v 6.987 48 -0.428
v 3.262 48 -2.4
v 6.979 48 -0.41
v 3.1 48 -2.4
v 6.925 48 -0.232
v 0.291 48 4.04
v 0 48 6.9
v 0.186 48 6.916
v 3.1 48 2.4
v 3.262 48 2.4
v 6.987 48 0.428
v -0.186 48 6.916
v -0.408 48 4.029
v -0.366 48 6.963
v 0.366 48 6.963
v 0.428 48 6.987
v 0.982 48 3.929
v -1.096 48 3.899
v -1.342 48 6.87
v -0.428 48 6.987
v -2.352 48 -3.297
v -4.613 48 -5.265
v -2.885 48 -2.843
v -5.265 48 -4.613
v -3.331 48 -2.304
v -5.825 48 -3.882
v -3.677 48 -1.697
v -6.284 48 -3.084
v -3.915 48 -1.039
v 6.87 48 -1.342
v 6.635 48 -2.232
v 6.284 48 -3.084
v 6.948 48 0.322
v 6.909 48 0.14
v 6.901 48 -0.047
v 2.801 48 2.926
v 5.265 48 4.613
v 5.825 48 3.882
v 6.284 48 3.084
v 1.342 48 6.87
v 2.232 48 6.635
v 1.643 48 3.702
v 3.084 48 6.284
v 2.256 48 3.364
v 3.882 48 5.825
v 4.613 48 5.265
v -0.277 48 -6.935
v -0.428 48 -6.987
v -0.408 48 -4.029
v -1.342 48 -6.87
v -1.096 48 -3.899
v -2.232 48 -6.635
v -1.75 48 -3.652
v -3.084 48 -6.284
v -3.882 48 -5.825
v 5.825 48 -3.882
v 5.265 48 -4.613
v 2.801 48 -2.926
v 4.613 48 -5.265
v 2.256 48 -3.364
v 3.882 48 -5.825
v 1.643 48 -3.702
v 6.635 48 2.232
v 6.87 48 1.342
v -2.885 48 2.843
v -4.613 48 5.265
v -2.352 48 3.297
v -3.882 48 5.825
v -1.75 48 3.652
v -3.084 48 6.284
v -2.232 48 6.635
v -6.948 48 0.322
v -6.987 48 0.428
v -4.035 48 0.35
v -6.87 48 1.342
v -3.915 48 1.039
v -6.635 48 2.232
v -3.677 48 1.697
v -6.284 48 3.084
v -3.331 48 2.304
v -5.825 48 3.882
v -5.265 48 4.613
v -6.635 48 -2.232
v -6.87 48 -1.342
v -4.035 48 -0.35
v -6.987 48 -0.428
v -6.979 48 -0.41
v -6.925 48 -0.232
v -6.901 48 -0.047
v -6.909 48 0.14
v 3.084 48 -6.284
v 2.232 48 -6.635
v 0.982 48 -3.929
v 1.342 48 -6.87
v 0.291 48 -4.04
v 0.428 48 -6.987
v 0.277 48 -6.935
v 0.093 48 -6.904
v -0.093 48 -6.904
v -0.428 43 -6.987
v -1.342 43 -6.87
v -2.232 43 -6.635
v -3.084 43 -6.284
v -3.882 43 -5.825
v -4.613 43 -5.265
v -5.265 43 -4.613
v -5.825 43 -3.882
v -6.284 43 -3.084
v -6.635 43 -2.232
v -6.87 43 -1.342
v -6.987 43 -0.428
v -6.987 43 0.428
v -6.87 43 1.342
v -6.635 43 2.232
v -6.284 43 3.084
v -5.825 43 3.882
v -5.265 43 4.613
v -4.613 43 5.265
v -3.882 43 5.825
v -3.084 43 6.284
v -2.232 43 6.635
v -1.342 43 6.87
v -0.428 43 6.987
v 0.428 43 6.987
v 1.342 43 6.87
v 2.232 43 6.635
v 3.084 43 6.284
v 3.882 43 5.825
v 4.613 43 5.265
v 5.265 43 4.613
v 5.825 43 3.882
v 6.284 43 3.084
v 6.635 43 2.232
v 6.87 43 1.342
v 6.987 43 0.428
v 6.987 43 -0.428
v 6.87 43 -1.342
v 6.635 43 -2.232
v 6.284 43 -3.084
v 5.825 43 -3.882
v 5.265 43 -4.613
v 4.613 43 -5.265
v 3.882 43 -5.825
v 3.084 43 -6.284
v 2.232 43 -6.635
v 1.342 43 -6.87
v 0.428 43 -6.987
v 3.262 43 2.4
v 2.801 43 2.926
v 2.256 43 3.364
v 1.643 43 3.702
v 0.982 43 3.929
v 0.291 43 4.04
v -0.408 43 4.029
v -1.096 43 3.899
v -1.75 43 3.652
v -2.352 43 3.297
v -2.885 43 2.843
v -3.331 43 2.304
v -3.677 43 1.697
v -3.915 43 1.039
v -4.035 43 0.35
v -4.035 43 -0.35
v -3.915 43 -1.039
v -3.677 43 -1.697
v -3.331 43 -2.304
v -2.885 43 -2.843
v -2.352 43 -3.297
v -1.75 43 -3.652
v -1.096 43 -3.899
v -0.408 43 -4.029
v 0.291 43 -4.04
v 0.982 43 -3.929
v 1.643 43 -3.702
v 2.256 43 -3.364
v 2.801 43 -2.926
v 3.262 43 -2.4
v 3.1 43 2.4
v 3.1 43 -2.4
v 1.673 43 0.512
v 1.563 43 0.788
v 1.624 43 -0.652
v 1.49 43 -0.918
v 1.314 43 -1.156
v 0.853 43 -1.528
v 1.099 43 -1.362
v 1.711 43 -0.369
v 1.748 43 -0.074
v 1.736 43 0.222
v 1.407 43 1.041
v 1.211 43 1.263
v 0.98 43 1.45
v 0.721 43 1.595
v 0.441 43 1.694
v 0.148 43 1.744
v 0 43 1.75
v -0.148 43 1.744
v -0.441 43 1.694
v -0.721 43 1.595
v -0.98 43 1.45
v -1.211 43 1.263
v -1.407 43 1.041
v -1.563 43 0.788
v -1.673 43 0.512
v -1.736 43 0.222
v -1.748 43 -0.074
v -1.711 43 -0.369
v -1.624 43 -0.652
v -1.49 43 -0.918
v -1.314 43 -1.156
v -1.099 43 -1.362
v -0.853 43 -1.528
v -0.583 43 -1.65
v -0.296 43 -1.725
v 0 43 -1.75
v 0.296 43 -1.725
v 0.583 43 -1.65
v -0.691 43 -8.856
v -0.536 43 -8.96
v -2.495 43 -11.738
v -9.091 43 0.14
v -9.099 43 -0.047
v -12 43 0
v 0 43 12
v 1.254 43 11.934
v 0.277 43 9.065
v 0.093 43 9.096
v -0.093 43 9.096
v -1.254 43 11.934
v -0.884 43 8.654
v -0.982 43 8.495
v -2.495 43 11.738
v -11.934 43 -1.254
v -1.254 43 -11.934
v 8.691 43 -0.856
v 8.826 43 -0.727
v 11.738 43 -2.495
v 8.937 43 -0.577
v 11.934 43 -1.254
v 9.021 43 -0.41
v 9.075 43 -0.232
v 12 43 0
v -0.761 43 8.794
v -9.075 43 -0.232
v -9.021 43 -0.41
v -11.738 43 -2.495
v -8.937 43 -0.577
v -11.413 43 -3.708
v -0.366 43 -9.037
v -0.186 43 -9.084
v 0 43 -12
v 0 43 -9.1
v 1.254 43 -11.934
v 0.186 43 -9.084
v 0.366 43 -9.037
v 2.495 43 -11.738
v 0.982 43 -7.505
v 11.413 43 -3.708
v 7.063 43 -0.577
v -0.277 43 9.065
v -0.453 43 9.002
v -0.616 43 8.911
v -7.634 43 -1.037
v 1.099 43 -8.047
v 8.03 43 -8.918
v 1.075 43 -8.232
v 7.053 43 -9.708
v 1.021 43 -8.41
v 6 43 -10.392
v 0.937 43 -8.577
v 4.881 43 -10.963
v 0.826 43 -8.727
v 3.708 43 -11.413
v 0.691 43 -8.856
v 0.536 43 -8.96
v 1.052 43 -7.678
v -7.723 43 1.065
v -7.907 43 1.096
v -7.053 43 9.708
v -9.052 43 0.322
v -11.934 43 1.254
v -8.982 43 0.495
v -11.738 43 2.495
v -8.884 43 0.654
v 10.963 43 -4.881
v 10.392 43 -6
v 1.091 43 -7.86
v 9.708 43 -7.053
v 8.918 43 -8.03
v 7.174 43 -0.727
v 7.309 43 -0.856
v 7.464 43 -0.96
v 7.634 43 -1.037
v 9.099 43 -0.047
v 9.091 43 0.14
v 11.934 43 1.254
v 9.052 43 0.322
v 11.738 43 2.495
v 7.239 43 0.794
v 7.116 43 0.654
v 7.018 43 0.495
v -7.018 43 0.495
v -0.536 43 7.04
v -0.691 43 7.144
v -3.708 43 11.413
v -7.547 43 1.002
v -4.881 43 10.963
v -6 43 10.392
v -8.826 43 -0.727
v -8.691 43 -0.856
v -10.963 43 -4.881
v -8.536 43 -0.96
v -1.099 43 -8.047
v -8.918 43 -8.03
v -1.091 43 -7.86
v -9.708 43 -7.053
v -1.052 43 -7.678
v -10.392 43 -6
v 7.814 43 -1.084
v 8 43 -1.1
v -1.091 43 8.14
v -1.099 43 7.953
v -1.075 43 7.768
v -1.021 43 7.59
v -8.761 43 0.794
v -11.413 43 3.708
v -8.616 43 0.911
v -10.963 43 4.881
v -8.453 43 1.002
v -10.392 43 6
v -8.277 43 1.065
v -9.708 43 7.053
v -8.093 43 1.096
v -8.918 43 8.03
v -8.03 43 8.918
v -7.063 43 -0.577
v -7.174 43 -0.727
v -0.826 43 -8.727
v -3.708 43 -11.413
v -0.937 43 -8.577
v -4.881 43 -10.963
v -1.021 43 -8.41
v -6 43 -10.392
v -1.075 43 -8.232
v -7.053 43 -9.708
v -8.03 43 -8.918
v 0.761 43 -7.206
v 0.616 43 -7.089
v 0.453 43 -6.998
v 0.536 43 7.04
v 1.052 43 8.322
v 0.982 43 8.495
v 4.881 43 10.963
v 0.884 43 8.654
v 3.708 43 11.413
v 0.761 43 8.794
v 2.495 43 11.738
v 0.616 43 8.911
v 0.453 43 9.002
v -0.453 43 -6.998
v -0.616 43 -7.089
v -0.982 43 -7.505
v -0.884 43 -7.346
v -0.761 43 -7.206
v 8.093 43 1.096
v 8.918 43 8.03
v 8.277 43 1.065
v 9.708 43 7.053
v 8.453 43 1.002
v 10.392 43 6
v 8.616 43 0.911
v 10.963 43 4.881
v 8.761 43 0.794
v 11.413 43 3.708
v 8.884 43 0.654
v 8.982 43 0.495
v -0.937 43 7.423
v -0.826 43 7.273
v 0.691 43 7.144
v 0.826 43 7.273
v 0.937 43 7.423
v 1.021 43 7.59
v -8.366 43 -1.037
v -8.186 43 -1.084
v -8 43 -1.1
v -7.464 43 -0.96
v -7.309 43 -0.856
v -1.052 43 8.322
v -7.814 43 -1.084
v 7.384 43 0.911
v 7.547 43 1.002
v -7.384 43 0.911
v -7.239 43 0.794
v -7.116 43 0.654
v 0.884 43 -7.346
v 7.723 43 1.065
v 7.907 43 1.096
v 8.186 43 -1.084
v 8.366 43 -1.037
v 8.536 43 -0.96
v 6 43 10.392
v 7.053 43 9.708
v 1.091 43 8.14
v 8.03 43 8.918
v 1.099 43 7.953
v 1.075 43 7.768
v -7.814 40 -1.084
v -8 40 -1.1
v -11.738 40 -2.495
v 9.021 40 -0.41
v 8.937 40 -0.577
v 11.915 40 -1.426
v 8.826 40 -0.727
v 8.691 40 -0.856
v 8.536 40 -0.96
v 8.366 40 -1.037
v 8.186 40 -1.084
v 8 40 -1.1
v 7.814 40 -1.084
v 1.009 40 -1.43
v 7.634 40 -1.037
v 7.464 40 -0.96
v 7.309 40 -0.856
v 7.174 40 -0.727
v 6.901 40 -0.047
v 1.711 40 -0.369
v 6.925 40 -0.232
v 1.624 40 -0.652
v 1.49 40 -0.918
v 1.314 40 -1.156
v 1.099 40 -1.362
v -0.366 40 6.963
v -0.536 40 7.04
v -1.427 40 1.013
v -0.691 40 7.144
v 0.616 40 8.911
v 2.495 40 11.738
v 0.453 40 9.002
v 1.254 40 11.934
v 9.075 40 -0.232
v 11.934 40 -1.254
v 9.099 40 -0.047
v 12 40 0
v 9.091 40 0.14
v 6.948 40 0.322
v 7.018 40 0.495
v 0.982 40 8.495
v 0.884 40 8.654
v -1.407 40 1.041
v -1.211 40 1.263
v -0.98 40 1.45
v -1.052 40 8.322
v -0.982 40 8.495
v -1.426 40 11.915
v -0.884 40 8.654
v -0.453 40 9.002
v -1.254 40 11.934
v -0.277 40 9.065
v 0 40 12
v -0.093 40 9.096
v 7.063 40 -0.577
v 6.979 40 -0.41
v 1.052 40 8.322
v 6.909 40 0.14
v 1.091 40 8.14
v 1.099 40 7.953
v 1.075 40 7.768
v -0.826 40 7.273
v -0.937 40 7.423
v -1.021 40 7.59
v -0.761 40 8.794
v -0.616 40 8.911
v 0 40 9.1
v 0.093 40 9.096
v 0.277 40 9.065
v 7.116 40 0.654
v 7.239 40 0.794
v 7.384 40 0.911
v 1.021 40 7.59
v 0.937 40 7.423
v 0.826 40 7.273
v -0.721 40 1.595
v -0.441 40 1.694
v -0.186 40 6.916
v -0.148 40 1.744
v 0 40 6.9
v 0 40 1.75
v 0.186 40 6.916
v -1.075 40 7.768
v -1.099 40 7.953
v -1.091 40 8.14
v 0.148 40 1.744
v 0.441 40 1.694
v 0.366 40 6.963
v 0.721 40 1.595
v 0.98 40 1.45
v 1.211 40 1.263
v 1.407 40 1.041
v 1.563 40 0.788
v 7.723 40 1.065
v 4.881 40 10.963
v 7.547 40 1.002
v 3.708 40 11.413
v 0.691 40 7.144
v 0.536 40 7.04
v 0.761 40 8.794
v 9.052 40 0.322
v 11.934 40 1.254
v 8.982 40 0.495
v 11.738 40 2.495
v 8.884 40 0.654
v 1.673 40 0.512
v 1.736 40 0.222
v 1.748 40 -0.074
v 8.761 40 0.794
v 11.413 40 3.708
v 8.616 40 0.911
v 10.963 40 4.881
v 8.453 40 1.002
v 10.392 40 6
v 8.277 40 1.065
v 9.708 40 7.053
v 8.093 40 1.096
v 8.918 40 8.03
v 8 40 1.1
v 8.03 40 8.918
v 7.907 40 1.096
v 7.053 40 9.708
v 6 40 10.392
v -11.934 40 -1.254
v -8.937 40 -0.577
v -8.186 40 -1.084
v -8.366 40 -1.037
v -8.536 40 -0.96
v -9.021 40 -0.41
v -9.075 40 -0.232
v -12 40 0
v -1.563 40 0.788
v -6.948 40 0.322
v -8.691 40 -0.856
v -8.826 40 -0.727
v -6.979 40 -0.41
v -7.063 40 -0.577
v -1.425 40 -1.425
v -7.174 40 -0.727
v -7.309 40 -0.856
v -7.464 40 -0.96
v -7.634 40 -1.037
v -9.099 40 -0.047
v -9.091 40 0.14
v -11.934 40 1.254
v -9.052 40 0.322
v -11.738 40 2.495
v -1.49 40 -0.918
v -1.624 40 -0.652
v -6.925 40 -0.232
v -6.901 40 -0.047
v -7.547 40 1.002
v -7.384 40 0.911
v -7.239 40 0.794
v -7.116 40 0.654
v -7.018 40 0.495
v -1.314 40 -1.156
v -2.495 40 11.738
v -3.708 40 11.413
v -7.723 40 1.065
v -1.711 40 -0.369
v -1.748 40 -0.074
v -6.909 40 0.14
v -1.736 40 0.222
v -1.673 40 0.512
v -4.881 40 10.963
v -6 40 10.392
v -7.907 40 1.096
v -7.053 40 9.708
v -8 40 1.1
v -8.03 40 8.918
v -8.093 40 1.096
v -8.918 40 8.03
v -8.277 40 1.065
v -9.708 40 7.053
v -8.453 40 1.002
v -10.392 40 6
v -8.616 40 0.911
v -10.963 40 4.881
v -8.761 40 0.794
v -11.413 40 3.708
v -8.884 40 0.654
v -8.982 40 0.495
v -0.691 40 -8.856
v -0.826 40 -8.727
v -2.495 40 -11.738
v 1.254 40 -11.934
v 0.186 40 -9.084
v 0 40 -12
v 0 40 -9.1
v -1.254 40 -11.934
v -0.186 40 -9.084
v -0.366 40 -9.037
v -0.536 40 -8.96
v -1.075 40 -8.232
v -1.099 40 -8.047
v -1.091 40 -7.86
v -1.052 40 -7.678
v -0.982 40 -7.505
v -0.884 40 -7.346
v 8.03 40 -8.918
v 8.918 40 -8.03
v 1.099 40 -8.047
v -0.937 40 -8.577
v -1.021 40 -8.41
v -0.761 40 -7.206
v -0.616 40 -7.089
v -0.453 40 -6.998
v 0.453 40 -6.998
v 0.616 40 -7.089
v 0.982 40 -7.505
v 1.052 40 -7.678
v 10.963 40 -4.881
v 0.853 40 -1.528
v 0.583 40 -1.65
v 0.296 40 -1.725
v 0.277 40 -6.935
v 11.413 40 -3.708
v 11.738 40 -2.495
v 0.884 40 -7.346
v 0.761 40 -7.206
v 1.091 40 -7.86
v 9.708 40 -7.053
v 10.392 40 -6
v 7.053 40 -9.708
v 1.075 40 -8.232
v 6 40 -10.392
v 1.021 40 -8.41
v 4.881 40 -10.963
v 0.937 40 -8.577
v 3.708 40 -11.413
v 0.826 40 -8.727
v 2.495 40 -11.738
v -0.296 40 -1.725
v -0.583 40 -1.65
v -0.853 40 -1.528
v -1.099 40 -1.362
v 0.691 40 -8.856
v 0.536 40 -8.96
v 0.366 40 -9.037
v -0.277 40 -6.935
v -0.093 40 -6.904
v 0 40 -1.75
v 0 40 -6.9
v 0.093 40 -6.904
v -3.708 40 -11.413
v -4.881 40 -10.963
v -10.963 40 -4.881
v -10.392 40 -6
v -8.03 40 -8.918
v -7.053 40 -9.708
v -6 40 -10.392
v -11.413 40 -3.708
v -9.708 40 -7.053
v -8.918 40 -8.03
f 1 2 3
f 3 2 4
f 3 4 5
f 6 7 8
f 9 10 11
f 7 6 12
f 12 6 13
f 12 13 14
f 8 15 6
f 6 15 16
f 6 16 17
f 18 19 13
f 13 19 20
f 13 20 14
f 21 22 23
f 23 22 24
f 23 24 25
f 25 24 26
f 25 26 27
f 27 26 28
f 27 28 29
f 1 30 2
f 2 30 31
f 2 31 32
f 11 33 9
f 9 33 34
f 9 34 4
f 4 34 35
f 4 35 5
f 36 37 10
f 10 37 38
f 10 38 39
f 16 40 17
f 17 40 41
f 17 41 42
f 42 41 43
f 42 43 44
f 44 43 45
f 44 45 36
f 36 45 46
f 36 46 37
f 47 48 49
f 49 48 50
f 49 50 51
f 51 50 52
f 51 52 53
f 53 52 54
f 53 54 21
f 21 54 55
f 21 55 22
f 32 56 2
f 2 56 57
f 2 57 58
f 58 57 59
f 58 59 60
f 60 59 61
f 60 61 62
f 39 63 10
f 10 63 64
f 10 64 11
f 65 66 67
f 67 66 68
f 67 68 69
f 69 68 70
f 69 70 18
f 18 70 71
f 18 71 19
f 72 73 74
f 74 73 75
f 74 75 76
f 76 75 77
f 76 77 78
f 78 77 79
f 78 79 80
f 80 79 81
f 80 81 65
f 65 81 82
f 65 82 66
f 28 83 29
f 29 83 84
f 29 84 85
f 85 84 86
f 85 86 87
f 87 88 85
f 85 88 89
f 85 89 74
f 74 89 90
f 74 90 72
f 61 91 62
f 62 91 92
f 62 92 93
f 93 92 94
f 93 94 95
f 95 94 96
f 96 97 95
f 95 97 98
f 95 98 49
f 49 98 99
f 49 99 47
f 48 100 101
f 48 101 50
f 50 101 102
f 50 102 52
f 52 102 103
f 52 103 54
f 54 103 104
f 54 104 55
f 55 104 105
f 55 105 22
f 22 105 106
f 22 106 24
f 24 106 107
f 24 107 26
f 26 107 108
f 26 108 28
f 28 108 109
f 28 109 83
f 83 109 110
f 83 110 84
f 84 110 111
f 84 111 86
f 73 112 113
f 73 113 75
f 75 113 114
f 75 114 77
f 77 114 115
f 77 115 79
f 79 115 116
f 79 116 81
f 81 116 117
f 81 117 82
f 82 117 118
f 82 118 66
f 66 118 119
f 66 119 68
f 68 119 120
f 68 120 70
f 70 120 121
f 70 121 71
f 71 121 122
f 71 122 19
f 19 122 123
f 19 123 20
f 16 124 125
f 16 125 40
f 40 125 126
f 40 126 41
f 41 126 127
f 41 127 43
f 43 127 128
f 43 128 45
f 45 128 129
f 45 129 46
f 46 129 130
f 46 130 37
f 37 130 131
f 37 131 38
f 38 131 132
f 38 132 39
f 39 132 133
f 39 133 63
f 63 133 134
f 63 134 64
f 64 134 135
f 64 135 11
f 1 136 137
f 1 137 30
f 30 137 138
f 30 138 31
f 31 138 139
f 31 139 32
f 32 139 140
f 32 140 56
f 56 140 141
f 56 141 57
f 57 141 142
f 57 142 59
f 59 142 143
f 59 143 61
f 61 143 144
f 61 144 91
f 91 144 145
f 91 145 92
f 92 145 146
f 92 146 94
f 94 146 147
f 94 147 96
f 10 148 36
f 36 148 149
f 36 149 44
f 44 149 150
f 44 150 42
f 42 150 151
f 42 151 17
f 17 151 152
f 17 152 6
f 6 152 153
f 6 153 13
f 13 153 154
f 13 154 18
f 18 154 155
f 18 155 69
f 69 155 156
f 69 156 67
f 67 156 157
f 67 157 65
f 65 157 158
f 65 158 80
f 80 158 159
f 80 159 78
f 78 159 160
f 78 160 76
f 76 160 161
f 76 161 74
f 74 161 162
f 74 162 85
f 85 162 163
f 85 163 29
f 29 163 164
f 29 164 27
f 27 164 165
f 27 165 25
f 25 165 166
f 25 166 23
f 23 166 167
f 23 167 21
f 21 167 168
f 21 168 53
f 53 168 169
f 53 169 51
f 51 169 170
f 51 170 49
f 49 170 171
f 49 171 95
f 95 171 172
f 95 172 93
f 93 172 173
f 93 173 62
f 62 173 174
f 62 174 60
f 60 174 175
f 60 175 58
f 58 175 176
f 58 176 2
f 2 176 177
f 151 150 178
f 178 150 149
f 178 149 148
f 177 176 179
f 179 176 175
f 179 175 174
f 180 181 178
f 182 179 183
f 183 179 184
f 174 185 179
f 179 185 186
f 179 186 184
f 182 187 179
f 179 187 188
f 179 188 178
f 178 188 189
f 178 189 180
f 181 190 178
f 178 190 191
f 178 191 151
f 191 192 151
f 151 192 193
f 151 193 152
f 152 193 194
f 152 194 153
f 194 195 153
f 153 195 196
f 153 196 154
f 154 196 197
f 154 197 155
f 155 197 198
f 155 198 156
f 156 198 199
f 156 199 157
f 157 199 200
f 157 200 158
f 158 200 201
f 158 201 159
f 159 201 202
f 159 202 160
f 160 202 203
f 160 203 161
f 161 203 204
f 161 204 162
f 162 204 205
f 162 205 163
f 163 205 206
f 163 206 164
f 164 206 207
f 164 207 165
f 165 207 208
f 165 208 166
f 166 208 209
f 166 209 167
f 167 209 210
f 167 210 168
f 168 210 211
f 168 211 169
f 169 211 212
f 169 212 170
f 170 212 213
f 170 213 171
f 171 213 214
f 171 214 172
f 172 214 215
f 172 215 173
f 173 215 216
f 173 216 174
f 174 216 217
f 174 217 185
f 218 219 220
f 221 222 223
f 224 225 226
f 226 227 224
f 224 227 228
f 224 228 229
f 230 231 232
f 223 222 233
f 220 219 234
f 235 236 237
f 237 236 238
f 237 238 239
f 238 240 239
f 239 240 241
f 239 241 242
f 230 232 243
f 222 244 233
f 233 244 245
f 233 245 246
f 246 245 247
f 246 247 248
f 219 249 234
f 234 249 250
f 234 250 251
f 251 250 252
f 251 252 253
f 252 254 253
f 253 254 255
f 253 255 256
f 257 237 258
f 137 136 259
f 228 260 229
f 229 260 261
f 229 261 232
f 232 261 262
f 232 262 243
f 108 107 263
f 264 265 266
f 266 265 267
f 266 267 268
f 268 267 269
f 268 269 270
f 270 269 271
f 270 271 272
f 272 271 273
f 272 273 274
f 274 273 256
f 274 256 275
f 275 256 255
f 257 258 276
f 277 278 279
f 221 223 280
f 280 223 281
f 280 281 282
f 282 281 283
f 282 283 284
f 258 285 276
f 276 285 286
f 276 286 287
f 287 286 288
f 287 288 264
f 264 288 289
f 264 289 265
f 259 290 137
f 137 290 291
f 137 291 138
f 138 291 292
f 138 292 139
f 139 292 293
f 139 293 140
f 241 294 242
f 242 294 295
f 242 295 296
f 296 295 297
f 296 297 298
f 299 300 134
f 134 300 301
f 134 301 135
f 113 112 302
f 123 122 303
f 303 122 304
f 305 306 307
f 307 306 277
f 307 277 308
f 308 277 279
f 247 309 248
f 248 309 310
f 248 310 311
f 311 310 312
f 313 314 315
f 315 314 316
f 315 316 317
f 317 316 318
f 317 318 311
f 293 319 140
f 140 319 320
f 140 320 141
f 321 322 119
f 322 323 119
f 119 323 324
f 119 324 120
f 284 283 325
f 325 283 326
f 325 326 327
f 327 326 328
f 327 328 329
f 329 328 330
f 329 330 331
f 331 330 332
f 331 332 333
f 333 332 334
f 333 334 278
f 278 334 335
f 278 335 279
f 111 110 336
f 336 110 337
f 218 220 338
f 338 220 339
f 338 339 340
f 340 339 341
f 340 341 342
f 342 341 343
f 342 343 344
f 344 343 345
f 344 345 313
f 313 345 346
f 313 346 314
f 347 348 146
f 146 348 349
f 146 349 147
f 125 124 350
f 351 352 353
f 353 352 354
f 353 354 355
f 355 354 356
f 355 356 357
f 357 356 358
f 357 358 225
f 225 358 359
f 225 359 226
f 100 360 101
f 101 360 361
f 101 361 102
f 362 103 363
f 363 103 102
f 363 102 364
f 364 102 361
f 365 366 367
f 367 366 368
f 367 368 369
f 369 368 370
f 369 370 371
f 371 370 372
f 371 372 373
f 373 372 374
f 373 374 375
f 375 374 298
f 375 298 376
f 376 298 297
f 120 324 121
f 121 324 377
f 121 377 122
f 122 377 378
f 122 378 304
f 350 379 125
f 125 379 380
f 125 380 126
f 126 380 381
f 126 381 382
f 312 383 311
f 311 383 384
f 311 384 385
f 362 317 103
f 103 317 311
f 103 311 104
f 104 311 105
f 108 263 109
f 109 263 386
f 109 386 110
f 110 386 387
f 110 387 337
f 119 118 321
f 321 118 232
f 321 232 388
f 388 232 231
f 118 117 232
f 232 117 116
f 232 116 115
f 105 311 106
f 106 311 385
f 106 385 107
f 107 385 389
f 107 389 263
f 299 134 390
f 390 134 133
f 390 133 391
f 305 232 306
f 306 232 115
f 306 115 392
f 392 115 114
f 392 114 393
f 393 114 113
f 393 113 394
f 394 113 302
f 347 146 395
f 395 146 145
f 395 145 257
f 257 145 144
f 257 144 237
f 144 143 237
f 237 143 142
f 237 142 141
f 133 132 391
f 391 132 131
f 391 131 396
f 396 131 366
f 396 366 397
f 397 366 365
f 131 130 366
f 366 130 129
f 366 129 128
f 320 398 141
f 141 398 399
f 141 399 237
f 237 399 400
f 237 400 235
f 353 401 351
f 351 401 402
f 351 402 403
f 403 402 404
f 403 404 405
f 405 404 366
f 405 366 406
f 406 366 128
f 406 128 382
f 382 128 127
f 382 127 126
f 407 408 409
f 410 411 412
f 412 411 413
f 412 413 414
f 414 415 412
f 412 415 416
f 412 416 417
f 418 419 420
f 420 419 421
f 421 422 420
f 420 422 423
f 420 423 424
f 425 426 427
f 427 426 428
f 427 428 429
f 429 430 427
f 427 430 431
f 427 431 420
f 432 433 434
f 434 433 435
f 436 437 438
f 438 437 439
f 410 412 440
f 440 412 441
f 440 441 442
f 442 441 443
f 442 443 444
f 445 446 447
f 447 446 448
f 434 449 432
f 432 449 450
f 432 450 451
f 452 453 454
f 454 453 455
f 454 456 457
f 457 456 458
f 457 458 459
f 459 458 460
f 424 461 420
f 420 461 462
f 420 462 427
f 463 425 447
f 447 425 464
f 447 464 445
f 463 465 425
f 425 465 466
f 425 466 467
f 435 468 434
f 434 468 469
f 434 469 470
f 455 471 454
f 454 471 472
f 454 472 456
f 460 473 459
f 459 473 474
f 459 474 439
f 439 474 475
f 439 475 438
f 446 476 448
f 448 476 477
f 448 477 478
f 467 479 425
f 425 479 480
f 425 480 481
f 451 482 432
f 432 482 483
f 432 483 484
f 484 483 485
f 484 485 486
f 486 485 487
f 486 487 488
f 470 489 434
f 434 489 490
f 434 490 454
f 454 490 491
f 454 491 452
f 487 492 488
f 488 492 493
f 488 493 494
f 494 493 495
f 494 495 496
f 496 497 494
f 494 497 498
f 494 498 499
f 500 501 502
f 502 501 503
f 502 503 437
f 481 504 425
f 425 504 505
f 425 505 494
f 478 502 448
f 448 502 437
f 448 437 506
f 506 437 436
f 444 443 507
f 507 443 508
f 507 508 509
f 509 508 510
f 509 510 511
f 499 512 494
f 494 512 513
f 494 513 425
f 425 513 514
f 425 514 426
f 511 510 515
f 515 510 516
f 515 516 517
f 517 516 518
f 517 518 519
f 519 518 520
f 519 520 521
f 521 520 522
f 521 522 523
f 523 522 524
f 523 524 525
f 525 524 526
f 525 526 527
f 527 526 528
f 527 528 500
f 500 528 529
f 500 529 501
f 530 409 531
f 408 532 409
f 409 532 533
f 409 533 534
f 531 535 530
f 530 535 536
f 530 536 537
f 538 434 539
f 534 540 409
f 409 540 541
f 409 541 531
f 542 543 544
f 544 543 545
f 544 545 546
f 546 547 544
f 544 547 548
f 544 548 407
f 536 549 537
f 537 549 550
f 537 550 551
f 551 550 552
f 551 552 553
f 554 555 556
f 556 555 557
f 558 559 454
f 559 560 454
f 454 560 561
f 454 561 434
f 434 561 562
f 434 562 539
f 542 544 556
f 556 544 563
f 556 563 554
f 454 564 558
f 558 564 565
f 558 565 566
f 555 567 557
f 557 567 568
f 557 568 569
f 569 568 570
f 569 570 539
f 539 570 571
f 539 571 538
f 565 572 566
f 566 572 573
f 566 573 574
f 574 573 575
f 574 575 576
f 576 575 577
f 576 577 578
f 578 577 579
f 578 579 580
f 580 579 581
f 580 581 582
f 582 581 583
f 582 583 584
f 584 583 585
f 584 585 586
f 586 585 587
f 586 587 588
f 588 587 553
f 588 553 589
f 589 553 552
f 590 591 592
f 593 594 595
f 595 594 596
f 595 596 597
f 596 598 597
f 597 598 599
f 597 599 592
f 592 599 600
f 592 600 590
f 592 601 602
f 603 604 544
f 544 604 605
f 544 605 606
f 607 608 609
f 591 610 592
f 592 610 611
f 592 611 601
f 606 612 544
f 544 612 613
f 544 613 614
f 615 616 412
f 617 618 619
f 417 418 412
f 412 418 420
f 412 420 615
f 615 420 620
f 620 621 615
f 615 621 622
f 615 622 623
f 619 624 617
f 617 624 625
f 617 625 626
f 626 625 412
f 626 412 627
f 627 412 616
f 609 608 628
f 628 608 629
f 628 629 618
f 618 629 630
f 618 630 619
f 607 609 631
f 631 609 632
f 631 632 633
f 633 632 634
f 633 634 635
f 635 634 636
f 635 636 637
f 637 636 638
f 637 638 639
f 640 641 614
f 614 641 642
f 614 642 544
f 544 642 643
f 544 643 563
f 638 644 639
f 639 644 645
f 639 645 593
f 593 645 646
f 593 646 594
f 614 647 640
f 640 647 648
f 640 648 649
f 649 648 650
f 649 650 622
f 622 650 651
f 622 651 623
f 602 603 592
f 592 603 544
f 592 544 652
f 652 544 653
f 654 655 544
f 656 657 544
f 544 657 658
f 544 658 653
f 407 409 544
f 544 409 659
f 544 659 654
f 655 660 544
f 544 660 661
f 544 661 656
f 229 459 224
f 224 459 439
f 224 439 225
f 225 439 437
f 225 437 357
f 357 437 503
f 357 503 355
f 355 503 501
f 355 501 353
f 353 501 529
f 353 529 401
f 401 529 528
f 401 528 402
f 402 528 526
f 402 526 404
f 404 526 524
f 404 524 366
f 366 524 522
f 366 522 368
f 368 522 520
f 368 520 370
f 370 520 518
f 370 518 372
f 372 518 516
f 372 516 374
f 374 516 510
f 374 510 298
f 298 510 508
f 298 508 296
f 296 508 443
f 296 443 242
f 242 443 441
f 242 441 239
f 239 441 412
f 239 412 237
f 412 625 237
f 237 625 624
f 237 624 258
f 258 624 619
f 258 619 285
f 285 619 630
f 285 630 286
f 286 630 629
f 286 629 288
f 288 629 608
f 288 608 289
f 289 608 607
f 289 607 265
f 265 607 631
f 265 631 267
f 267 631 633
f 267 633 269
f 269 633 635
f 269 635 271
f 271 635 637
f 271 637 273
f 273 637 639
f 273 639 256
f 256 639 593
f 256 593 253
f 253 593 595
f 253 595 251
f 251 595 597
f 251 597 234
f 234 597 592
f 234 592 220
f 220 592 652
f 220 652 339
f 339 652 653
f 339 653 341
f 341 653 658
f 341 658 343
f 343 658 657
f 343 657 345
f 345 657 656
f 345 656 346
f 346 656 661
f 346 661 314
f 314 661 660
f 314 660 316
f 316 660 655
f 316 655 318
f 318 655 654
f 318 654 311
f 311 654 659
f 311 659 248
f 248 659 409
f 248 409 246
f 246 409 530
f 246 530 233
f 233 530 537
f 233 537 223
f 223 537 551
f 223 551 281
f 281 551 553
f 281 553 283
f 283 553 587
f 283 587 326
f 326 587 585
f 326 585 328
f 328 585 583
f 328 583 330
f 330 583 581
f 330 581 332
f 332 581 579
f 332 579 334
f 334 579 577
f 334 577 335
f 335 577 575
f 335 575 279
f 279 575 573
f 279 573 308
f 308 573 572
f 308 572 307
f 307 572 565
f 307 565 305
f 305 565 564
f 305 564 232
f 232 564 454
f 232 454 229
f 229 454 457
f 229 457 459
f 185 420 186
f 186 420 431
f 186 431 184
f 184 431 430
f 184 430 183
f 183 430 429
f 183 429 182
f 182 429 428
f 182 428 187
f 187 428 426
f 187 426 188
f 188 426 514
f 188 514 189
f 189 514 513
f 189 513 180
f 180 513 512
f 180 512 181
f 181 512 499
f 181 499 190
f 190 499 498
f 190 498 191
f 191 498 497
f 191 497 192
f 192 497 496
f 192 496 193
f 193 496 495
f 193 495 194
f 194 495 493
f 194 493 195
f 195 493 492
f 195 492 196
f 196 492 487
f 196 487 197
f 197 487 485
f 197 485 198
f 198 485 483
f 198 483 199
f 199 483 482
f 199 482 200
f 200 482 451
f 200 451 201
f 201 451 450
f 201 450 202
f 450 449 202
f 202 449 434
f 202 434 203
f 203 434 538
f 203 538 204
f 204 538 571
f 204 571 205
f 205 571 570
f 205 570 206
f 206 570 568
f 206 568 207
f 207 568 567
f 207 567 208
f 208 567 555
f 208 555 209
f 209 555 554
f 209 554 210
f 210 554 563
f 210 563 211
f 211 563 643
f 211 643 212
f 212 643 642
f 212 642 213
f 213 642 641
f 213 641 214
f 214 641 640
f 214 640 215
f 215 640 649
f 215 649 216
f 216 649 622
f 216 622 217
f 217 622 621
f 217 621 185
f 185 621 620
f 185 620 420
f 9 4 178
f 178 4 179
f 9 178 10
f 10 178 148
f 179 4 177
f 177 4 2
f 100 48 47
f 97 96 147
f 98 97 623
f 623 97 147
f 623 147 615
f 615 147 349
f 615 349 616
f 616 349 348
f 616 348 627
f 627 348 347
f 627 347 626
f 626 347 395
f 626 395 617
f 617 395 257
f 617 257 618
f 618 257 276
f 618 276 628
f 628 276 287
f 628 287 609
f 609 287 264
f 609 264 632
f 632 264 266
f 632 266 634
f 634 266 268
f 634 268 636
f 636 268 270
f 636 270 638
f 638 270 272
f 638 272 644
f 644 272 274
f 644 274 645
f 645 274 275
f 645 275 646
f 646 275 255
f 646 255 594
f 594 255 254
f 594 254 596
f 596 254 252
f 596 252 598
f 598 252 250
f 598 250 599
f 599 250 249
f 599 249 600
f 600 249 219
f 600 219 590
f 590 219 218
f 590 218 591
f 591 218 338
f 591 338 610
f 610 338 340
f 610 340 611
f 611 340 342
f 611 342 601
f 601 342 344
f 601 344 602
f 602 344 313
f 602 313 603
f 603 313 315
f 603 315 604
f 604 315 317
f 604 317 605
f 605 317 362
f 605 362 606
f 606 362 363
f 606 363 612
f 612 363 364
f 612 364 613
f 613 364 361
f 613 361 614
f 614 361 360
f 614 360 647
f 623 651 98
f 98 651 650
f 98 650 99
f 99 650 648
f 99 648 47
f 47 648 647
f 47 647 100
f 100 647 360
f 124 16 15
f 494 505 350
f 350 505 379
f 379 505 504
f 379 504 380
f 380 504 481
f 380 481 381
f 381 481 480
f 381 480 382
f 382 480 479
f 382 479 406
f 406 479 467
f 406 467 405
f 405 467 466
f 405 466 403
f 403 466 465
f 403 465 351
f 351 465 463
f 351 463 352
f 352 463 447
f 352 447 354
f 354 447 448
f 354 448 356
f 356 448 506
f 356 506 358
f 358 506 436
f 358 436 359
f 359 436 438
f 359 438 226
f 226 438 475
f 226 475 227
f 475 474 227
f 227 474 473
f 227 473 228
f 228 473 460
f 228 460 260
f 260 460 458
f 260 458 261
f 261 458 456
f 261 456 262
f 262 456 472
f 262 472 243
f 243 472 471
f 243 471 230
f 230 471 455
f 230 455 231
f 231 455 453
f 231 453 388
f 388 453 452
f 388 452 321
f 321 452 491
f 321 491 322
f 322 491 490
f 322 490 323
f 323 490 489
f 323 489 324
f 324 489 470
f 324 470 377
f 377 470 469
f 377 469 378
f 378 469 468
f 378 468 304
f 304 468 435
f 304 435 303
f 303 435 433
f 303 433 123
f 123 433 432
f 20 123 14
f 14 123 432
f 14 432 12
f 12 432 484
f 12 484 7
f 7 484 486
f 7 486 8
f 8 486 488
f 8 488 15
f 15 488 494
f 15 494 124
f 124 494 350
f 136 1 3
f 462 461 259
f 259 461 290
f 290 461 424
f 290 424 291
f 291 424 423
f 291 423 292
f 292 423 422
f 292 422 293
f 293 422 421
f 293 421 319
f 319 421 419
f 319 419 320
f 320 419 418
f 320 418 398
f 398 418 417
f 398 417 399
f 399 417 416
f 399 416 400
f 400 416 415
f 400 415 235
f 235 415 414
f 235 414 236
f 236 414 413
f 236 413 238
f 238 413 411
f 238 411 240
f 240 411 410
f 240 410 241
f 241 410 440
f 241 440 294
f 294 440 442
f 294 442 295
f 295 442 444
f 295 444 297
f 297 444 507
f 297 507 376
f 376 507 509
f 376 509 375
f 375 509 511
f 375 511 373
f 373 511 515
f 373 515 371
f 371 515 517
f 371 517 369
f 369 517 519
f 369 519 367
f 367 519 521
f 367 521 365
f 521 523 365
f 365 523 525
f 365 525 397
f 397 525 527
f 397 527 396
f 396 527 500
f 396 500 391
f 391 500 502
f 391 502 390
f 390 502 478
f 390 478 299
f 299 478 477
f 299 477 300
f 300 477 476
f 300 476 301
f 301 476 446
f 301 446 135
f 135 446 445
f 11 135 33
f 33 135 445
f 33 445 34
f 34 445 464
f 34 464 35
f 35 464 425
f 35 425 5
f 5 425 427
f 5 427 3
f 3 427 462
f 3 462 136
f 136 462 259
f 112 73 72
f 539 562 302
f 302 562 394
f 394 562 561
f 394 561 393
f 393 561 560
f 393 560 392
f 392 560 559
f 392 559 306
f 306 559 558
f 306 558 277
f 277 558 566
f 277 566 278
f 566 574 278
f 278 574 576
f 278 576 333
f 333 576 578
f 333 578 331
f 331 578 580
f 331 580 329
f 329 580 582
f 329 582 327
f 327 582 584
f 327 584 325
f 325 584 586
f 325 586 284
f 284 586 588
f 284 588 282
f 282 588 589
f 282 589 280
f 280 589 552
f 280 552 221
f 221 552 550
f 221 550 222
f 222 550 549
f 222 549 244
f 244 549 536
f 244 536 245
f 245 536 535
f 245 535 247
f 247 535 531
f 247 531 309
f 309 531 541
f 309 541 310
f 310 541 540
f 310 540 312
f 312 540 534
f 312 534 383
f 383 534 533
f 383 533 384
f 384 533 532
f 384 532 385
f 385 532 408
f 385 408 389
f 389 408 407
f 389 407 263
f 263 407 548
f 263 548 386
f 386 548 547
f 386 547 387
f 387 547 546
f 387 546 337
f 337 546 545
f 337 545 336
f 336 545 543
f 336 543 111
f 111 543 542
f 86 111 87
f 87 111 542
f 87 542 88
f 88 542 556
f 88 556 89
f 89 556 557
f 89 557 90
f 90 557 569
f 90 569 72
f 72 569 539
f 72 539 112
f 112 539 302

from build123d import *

# Parameters (mm, degrees)
STOCK_HORN_DRIVE_FLANGE_START       = 40
STOCK_HORN_DRIVE_FLANGE_PROFILE_R   = 12
STOCK_HORN_DRIVE_FLANGE_PROFILE_R_2 = 1.75
STOCK_HORN_DRIVE_FLANGE_DEPTH       = 3
D_COUPLING_RING_START               = 43
D_COUPLING_RING_PROFILE_R           = 7
D_COUPLING_RING_PROFILE_R_2         = 4.05
D_COUPLING_RING_DEPTH               = 5
D_KEY_LAND_START                    = 43
D_KEY_LAND_PROFILE_W                = 2.9
D_KEY_LAND_PROFILE_H                = 4.8
D_KEY_LAND_DEPTH                    = 5
STOCK_HORN_SCREWS_START             = 39
STOCK_HORN_SCREWS_PROFILE_R         = 1.1
STOCK_HORN_SCREWS_DEPTH             = 12.911688245


with BuildPart() as part:
    # Stock_horn_drive_flange_profile → Stock_horn_drive_flange (new body)
    with BuildSketch(Plane(origin=(0, 0, 0), x_dir=(1, 0, 0), z_dir=(0, 1, 0)).offset(STOCK_HORN_DRIVE_FLANGE_START)):
        with Locations(Location((0, 0, 0), (0, 0, 270))):
            Circle(STOCK_HORN_DRIVE_FLANGE_PROFILE_R)
        with Locations(Location((0, 0, 0), (0, 0, 270))):
            Circle(STOCK_HORN_DRIVE_FLANGE_PROFILE_R_2, mode=Mode.SUBTRACT)
    extrude(amount=STOCK_HORN_DRIVE_FLANGE_DEPTH)

    # D_coupling_ring_profile → D_coupling_ring (add)
    with BuildSketch(Plane(origin=(0, 0, 0), x_dir=(1, 0, 0), z_dir=(0, 1, 0)).offset(D_COUPLING_RING_START)):
        with Locations(Location((0, 0, 0), (0, 0, 270))):
            Circle(D_COUPLING_RING_PROFILE_R)
        with Locations(Location((0, 0, 0), (0, 0, 270))):
            Circle(D_COUPLING_RING_PROFILE_R_2, mode=Mode.SUBTRACT)
    extrude(amount=D_COUPLING_RING_DEPTH)

    # D_key_land_profile → D_key_land (add)
    with BuildSketch(Plane(origin=(0, 0, 0), x_dir=(1, 0, 0), z_dir=(0, 1, 0)).offset(D_KEY_LAND_START)):
        with Locations((4.55, 0)):
            Rectangle(D_KEY_LAND_PROFILE_W, D_KEY_LAND_PROFILE_H)
    extrude(amount=D_KEY_LAND_DEPTH)

    # Stock_horn_screws_profile → Stock_horn_screws (cut, through all)
    with BuildSketch(Plane(origin=(0, 0, 0), x_dir=(1, 0, 0), z_dir=(0, 1, 0)).offset(STOCK_HORN_SCREWS_START)):
        with Locations(Location((-8, 0, 0), (0, 0, 22.9239414))):
            Circle(STOCK_HORN_SCREWS_PROFILE_R)
        with Locations(Location((8, 0, 0), (0, 0, 157.0760586))):
            Circle(STOCK_HORN_SCREWS_PROFILE_R)
        with Locations(Location((0, -8, 0), (0, 0, 67.0760586))):
            Circle(STOCK_HORN_SCREWS_PROFILE_R)
        with Locations(Location((0, 8, 0), (0, 0, 292.9239414))):
            Circle(STOCK_HORN_SCREWS_PROFILE_R)
    extrude(amount=STOCK_HORN_SCREWS_DEPTH, mode=Mode.SUBTRACT)


solid = part.part
